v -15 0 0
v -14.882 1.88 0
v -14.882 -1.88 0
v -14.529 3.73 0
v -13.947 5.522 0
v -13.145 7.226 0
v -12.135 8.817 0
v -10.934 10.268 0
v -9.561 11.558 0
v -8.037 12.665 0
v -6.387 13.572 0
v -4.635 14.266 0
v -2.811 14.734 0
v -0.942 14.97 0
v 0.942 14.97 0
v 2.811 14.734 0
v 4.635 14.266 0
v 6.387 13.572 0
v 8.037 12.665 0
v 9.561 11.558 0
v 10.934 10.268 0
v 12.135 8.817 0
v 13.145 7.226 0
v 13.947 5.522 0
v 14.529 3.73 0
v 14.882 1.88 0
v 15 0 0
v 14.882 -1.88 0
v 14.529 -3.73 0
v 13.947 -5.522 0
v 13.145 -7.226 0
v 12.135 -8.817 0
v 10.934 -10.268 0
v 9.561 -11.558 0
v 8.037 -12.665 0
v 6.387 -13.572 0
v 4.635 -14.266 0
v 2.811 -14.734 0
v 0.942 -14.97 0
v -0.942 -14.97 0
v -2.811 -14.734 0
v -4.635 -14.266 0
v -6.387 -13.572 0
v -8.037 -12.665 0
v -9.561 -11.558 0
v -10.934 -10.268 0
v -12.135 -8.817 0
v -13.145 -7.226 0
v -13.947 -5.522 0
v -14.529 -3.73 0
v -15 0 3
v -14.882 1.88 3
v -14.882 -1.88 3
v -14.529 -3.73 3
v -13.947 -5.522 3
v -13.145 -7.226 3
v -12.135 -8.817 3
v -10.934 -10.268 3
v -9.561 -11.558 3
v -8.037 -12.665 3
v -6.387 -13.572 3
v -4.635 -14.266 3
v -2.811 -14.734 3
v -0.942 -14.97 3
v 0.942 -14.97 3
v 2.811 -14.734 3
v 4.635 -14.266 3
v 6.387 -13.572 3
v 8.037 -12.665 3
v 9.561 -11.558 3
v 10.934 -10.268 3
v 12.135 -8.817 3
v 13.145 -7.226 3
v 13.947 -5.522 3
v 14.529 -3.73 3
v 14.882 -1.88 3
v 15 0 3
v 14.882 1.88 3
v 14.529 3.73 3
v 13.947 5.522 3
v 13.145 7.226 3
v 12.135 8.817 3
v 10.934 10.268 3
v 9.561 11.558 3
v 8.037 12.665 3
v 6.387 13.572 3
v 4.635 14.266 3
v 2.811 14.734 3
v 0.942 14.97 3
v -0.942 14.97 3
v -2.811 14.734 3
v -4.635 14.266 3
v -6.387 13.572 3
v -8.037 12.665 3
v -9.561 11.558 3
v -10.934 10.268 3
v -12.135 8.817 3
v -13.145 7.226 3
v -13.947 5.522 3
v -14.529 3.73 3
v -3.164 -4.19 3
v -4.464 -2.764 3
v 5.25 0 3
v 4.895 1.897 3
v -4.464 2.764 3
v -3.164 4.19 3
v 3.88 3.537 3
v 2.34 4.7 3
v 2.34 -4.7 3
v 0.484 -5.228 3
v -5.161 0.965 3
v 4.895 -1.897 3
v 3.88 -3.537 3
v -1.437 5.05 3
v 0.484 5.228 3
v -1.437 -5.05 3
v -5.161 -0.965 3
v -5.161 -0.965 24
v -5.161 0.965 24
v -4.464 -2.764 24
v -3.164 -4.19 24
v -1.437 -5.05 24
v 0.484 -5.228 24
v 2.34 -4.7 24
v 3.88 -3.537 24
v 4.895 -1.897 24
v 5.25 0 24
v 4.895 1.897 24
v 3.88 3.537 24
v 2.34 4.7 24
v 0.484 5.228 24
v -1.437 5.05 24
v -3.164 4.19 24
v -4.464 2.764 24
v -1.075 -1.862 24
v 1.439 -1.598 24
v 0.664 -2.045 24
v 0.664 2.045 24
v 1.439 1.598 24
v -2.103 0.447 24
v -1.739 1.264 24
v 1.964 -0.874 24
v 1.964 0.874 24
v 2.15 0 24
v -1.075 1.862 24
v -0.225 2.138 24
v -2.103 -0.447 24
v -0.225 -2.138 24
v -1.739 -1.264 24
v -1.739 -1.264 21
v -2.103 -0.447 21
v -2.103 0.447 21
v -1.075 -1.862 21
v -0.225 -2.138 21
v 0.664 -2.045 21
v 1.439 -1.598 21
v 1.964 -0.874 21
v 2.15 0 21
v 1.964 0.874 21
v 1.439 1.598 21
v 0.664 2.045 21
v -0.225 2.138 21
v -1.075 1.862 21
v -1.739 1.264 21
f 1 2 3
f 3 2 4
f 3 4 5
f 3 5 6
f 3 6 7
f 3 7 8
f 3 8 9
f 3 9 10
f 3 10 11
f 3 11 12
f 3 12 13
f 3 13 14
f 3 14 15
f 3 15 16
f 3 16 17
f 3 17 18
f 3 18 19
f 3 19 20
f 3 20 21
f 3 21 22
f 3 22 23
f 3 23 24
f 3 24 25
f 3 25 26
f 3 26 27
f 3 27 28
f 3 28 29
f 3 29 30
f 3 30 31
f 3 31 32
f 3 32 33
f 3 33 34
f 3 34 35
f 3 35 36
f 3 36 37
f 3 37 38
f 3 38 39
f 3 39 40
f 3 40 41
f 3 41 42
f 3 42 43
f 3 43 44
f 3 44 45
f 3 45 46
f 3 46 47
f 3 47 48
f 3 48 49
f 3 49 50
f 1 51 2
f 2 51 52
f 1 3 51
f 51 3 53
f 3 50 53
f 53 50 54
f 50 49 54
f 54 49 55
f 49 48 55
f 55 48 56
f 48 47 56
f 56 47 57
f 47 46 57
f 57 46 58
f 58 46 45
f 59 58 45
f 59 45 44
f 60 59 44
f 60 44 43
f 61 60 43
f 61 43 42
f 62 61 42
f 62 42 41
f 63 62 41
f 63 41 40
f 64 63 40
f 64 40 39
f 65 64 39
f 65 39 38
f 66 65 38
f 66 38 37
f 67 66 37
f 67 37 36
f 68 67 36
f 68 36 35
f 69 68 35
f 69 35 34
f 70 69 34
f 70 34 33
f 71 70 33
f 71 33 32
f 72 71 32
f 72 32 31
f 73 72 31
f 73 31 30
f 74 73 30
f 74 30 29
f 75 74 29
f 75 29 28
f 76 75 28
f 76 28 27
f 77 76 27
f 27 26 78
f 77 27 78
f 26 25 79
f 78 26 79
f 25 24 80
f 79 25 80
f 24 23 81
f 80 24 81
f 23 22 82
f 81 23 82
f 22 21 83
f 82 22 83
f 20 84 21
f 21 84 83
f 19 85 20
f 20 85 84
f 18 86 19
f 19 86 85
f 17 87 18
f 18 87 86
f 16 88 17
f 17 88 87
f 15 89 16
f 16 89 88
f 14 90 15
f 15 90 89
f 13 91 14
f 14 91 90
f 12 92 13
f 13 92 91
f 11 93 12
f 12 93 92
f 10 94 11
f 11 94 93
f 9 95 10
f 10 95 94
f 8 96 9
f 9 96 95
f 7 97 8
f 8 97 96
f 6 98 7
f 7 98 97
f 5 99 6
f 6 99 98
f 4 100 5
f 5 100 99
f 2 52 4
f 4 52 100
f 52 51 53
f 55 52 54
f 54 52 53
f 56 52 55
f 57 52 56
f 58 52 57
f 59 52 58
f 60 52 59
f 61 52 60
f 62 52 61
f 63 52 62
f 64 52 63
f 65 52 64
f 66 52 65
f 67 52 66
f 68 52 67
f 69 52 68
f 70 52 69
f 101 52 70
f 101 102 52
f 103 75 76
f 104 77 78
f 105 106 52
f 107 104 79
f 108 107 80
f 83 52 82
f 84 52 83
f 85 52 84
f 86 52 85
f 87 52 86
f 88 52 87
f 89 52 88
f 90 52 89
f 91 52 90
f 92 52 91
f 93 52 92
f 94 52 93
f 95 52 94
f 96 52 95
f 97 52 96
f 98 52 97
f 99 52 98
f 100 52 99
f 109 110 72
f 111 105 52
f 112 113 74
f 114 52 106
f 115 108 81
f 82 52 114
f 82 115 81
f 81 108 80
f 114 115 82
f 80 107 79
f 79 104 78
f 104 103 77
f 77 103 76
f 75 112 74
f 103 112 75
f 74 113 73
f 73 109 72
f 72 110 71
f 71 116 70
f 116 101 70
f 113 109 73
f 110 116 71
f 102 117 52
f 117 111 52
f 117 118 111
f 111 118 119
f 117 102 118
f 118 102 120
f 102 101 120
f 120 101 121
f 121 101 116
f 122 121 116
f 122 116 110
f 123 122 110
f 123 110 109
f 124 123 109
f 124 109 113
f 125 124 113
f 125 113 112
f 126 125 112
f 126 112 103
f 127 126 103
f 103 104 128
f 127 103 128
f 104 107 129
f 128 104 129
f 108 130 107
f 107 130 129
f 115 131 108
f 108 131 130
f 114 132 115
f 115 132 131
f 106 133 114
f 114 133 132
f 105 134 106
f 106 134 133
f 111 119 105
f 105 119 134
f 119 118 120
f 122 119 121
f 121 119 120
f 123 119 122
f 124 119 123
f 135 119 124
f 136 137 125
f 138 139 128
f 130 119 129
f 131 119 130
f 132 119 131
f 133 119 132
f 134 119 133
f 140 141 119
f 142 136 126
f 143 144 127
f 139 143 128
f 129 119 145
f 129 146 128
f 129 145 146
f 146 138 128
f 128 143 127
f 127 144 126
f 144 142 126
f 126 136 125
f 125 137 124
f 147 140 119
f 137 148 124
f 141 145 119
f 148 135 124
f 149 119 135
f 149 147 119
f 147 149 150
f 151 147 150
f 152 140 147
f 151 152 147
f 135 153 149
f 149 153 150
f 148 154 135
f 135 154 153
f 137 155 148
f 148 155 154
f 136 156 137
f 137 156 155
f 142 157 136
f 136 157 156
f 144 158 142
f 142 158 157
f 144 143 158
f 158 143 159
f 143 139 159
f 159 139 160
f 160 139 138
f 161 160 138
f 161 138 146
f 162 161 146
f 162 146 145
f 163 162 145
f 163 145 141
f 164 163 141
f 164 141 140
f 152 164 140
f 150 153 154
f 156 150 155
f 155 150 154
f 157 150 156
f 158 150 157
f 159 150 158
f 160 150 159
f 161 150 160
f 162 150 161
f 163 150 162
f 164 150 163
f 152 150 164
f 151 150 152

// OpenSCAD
/**
 * WC Flush button
 * 
 * Created by dviejo
 * 19/01/2015
 * 
 */

externalRad = 15;
internalRad = 5.25;
connectionHole = 2.15;

height = 3;
beamHeight = 24;
connectionHoleDepth = 3;

module button()
{
  difference()
  {
    union()
    {
      cylinder(r=externalRad, h=height, $fn=50);
      cylinder(r=internalRad, h=beamHeight);
    }
    translate([0, 0, beamHeight-connectionHoleDepth]) cylinder(r=connectionHole, h=connectionHoleDepth+1, $fn=15);
  }
}

button();
